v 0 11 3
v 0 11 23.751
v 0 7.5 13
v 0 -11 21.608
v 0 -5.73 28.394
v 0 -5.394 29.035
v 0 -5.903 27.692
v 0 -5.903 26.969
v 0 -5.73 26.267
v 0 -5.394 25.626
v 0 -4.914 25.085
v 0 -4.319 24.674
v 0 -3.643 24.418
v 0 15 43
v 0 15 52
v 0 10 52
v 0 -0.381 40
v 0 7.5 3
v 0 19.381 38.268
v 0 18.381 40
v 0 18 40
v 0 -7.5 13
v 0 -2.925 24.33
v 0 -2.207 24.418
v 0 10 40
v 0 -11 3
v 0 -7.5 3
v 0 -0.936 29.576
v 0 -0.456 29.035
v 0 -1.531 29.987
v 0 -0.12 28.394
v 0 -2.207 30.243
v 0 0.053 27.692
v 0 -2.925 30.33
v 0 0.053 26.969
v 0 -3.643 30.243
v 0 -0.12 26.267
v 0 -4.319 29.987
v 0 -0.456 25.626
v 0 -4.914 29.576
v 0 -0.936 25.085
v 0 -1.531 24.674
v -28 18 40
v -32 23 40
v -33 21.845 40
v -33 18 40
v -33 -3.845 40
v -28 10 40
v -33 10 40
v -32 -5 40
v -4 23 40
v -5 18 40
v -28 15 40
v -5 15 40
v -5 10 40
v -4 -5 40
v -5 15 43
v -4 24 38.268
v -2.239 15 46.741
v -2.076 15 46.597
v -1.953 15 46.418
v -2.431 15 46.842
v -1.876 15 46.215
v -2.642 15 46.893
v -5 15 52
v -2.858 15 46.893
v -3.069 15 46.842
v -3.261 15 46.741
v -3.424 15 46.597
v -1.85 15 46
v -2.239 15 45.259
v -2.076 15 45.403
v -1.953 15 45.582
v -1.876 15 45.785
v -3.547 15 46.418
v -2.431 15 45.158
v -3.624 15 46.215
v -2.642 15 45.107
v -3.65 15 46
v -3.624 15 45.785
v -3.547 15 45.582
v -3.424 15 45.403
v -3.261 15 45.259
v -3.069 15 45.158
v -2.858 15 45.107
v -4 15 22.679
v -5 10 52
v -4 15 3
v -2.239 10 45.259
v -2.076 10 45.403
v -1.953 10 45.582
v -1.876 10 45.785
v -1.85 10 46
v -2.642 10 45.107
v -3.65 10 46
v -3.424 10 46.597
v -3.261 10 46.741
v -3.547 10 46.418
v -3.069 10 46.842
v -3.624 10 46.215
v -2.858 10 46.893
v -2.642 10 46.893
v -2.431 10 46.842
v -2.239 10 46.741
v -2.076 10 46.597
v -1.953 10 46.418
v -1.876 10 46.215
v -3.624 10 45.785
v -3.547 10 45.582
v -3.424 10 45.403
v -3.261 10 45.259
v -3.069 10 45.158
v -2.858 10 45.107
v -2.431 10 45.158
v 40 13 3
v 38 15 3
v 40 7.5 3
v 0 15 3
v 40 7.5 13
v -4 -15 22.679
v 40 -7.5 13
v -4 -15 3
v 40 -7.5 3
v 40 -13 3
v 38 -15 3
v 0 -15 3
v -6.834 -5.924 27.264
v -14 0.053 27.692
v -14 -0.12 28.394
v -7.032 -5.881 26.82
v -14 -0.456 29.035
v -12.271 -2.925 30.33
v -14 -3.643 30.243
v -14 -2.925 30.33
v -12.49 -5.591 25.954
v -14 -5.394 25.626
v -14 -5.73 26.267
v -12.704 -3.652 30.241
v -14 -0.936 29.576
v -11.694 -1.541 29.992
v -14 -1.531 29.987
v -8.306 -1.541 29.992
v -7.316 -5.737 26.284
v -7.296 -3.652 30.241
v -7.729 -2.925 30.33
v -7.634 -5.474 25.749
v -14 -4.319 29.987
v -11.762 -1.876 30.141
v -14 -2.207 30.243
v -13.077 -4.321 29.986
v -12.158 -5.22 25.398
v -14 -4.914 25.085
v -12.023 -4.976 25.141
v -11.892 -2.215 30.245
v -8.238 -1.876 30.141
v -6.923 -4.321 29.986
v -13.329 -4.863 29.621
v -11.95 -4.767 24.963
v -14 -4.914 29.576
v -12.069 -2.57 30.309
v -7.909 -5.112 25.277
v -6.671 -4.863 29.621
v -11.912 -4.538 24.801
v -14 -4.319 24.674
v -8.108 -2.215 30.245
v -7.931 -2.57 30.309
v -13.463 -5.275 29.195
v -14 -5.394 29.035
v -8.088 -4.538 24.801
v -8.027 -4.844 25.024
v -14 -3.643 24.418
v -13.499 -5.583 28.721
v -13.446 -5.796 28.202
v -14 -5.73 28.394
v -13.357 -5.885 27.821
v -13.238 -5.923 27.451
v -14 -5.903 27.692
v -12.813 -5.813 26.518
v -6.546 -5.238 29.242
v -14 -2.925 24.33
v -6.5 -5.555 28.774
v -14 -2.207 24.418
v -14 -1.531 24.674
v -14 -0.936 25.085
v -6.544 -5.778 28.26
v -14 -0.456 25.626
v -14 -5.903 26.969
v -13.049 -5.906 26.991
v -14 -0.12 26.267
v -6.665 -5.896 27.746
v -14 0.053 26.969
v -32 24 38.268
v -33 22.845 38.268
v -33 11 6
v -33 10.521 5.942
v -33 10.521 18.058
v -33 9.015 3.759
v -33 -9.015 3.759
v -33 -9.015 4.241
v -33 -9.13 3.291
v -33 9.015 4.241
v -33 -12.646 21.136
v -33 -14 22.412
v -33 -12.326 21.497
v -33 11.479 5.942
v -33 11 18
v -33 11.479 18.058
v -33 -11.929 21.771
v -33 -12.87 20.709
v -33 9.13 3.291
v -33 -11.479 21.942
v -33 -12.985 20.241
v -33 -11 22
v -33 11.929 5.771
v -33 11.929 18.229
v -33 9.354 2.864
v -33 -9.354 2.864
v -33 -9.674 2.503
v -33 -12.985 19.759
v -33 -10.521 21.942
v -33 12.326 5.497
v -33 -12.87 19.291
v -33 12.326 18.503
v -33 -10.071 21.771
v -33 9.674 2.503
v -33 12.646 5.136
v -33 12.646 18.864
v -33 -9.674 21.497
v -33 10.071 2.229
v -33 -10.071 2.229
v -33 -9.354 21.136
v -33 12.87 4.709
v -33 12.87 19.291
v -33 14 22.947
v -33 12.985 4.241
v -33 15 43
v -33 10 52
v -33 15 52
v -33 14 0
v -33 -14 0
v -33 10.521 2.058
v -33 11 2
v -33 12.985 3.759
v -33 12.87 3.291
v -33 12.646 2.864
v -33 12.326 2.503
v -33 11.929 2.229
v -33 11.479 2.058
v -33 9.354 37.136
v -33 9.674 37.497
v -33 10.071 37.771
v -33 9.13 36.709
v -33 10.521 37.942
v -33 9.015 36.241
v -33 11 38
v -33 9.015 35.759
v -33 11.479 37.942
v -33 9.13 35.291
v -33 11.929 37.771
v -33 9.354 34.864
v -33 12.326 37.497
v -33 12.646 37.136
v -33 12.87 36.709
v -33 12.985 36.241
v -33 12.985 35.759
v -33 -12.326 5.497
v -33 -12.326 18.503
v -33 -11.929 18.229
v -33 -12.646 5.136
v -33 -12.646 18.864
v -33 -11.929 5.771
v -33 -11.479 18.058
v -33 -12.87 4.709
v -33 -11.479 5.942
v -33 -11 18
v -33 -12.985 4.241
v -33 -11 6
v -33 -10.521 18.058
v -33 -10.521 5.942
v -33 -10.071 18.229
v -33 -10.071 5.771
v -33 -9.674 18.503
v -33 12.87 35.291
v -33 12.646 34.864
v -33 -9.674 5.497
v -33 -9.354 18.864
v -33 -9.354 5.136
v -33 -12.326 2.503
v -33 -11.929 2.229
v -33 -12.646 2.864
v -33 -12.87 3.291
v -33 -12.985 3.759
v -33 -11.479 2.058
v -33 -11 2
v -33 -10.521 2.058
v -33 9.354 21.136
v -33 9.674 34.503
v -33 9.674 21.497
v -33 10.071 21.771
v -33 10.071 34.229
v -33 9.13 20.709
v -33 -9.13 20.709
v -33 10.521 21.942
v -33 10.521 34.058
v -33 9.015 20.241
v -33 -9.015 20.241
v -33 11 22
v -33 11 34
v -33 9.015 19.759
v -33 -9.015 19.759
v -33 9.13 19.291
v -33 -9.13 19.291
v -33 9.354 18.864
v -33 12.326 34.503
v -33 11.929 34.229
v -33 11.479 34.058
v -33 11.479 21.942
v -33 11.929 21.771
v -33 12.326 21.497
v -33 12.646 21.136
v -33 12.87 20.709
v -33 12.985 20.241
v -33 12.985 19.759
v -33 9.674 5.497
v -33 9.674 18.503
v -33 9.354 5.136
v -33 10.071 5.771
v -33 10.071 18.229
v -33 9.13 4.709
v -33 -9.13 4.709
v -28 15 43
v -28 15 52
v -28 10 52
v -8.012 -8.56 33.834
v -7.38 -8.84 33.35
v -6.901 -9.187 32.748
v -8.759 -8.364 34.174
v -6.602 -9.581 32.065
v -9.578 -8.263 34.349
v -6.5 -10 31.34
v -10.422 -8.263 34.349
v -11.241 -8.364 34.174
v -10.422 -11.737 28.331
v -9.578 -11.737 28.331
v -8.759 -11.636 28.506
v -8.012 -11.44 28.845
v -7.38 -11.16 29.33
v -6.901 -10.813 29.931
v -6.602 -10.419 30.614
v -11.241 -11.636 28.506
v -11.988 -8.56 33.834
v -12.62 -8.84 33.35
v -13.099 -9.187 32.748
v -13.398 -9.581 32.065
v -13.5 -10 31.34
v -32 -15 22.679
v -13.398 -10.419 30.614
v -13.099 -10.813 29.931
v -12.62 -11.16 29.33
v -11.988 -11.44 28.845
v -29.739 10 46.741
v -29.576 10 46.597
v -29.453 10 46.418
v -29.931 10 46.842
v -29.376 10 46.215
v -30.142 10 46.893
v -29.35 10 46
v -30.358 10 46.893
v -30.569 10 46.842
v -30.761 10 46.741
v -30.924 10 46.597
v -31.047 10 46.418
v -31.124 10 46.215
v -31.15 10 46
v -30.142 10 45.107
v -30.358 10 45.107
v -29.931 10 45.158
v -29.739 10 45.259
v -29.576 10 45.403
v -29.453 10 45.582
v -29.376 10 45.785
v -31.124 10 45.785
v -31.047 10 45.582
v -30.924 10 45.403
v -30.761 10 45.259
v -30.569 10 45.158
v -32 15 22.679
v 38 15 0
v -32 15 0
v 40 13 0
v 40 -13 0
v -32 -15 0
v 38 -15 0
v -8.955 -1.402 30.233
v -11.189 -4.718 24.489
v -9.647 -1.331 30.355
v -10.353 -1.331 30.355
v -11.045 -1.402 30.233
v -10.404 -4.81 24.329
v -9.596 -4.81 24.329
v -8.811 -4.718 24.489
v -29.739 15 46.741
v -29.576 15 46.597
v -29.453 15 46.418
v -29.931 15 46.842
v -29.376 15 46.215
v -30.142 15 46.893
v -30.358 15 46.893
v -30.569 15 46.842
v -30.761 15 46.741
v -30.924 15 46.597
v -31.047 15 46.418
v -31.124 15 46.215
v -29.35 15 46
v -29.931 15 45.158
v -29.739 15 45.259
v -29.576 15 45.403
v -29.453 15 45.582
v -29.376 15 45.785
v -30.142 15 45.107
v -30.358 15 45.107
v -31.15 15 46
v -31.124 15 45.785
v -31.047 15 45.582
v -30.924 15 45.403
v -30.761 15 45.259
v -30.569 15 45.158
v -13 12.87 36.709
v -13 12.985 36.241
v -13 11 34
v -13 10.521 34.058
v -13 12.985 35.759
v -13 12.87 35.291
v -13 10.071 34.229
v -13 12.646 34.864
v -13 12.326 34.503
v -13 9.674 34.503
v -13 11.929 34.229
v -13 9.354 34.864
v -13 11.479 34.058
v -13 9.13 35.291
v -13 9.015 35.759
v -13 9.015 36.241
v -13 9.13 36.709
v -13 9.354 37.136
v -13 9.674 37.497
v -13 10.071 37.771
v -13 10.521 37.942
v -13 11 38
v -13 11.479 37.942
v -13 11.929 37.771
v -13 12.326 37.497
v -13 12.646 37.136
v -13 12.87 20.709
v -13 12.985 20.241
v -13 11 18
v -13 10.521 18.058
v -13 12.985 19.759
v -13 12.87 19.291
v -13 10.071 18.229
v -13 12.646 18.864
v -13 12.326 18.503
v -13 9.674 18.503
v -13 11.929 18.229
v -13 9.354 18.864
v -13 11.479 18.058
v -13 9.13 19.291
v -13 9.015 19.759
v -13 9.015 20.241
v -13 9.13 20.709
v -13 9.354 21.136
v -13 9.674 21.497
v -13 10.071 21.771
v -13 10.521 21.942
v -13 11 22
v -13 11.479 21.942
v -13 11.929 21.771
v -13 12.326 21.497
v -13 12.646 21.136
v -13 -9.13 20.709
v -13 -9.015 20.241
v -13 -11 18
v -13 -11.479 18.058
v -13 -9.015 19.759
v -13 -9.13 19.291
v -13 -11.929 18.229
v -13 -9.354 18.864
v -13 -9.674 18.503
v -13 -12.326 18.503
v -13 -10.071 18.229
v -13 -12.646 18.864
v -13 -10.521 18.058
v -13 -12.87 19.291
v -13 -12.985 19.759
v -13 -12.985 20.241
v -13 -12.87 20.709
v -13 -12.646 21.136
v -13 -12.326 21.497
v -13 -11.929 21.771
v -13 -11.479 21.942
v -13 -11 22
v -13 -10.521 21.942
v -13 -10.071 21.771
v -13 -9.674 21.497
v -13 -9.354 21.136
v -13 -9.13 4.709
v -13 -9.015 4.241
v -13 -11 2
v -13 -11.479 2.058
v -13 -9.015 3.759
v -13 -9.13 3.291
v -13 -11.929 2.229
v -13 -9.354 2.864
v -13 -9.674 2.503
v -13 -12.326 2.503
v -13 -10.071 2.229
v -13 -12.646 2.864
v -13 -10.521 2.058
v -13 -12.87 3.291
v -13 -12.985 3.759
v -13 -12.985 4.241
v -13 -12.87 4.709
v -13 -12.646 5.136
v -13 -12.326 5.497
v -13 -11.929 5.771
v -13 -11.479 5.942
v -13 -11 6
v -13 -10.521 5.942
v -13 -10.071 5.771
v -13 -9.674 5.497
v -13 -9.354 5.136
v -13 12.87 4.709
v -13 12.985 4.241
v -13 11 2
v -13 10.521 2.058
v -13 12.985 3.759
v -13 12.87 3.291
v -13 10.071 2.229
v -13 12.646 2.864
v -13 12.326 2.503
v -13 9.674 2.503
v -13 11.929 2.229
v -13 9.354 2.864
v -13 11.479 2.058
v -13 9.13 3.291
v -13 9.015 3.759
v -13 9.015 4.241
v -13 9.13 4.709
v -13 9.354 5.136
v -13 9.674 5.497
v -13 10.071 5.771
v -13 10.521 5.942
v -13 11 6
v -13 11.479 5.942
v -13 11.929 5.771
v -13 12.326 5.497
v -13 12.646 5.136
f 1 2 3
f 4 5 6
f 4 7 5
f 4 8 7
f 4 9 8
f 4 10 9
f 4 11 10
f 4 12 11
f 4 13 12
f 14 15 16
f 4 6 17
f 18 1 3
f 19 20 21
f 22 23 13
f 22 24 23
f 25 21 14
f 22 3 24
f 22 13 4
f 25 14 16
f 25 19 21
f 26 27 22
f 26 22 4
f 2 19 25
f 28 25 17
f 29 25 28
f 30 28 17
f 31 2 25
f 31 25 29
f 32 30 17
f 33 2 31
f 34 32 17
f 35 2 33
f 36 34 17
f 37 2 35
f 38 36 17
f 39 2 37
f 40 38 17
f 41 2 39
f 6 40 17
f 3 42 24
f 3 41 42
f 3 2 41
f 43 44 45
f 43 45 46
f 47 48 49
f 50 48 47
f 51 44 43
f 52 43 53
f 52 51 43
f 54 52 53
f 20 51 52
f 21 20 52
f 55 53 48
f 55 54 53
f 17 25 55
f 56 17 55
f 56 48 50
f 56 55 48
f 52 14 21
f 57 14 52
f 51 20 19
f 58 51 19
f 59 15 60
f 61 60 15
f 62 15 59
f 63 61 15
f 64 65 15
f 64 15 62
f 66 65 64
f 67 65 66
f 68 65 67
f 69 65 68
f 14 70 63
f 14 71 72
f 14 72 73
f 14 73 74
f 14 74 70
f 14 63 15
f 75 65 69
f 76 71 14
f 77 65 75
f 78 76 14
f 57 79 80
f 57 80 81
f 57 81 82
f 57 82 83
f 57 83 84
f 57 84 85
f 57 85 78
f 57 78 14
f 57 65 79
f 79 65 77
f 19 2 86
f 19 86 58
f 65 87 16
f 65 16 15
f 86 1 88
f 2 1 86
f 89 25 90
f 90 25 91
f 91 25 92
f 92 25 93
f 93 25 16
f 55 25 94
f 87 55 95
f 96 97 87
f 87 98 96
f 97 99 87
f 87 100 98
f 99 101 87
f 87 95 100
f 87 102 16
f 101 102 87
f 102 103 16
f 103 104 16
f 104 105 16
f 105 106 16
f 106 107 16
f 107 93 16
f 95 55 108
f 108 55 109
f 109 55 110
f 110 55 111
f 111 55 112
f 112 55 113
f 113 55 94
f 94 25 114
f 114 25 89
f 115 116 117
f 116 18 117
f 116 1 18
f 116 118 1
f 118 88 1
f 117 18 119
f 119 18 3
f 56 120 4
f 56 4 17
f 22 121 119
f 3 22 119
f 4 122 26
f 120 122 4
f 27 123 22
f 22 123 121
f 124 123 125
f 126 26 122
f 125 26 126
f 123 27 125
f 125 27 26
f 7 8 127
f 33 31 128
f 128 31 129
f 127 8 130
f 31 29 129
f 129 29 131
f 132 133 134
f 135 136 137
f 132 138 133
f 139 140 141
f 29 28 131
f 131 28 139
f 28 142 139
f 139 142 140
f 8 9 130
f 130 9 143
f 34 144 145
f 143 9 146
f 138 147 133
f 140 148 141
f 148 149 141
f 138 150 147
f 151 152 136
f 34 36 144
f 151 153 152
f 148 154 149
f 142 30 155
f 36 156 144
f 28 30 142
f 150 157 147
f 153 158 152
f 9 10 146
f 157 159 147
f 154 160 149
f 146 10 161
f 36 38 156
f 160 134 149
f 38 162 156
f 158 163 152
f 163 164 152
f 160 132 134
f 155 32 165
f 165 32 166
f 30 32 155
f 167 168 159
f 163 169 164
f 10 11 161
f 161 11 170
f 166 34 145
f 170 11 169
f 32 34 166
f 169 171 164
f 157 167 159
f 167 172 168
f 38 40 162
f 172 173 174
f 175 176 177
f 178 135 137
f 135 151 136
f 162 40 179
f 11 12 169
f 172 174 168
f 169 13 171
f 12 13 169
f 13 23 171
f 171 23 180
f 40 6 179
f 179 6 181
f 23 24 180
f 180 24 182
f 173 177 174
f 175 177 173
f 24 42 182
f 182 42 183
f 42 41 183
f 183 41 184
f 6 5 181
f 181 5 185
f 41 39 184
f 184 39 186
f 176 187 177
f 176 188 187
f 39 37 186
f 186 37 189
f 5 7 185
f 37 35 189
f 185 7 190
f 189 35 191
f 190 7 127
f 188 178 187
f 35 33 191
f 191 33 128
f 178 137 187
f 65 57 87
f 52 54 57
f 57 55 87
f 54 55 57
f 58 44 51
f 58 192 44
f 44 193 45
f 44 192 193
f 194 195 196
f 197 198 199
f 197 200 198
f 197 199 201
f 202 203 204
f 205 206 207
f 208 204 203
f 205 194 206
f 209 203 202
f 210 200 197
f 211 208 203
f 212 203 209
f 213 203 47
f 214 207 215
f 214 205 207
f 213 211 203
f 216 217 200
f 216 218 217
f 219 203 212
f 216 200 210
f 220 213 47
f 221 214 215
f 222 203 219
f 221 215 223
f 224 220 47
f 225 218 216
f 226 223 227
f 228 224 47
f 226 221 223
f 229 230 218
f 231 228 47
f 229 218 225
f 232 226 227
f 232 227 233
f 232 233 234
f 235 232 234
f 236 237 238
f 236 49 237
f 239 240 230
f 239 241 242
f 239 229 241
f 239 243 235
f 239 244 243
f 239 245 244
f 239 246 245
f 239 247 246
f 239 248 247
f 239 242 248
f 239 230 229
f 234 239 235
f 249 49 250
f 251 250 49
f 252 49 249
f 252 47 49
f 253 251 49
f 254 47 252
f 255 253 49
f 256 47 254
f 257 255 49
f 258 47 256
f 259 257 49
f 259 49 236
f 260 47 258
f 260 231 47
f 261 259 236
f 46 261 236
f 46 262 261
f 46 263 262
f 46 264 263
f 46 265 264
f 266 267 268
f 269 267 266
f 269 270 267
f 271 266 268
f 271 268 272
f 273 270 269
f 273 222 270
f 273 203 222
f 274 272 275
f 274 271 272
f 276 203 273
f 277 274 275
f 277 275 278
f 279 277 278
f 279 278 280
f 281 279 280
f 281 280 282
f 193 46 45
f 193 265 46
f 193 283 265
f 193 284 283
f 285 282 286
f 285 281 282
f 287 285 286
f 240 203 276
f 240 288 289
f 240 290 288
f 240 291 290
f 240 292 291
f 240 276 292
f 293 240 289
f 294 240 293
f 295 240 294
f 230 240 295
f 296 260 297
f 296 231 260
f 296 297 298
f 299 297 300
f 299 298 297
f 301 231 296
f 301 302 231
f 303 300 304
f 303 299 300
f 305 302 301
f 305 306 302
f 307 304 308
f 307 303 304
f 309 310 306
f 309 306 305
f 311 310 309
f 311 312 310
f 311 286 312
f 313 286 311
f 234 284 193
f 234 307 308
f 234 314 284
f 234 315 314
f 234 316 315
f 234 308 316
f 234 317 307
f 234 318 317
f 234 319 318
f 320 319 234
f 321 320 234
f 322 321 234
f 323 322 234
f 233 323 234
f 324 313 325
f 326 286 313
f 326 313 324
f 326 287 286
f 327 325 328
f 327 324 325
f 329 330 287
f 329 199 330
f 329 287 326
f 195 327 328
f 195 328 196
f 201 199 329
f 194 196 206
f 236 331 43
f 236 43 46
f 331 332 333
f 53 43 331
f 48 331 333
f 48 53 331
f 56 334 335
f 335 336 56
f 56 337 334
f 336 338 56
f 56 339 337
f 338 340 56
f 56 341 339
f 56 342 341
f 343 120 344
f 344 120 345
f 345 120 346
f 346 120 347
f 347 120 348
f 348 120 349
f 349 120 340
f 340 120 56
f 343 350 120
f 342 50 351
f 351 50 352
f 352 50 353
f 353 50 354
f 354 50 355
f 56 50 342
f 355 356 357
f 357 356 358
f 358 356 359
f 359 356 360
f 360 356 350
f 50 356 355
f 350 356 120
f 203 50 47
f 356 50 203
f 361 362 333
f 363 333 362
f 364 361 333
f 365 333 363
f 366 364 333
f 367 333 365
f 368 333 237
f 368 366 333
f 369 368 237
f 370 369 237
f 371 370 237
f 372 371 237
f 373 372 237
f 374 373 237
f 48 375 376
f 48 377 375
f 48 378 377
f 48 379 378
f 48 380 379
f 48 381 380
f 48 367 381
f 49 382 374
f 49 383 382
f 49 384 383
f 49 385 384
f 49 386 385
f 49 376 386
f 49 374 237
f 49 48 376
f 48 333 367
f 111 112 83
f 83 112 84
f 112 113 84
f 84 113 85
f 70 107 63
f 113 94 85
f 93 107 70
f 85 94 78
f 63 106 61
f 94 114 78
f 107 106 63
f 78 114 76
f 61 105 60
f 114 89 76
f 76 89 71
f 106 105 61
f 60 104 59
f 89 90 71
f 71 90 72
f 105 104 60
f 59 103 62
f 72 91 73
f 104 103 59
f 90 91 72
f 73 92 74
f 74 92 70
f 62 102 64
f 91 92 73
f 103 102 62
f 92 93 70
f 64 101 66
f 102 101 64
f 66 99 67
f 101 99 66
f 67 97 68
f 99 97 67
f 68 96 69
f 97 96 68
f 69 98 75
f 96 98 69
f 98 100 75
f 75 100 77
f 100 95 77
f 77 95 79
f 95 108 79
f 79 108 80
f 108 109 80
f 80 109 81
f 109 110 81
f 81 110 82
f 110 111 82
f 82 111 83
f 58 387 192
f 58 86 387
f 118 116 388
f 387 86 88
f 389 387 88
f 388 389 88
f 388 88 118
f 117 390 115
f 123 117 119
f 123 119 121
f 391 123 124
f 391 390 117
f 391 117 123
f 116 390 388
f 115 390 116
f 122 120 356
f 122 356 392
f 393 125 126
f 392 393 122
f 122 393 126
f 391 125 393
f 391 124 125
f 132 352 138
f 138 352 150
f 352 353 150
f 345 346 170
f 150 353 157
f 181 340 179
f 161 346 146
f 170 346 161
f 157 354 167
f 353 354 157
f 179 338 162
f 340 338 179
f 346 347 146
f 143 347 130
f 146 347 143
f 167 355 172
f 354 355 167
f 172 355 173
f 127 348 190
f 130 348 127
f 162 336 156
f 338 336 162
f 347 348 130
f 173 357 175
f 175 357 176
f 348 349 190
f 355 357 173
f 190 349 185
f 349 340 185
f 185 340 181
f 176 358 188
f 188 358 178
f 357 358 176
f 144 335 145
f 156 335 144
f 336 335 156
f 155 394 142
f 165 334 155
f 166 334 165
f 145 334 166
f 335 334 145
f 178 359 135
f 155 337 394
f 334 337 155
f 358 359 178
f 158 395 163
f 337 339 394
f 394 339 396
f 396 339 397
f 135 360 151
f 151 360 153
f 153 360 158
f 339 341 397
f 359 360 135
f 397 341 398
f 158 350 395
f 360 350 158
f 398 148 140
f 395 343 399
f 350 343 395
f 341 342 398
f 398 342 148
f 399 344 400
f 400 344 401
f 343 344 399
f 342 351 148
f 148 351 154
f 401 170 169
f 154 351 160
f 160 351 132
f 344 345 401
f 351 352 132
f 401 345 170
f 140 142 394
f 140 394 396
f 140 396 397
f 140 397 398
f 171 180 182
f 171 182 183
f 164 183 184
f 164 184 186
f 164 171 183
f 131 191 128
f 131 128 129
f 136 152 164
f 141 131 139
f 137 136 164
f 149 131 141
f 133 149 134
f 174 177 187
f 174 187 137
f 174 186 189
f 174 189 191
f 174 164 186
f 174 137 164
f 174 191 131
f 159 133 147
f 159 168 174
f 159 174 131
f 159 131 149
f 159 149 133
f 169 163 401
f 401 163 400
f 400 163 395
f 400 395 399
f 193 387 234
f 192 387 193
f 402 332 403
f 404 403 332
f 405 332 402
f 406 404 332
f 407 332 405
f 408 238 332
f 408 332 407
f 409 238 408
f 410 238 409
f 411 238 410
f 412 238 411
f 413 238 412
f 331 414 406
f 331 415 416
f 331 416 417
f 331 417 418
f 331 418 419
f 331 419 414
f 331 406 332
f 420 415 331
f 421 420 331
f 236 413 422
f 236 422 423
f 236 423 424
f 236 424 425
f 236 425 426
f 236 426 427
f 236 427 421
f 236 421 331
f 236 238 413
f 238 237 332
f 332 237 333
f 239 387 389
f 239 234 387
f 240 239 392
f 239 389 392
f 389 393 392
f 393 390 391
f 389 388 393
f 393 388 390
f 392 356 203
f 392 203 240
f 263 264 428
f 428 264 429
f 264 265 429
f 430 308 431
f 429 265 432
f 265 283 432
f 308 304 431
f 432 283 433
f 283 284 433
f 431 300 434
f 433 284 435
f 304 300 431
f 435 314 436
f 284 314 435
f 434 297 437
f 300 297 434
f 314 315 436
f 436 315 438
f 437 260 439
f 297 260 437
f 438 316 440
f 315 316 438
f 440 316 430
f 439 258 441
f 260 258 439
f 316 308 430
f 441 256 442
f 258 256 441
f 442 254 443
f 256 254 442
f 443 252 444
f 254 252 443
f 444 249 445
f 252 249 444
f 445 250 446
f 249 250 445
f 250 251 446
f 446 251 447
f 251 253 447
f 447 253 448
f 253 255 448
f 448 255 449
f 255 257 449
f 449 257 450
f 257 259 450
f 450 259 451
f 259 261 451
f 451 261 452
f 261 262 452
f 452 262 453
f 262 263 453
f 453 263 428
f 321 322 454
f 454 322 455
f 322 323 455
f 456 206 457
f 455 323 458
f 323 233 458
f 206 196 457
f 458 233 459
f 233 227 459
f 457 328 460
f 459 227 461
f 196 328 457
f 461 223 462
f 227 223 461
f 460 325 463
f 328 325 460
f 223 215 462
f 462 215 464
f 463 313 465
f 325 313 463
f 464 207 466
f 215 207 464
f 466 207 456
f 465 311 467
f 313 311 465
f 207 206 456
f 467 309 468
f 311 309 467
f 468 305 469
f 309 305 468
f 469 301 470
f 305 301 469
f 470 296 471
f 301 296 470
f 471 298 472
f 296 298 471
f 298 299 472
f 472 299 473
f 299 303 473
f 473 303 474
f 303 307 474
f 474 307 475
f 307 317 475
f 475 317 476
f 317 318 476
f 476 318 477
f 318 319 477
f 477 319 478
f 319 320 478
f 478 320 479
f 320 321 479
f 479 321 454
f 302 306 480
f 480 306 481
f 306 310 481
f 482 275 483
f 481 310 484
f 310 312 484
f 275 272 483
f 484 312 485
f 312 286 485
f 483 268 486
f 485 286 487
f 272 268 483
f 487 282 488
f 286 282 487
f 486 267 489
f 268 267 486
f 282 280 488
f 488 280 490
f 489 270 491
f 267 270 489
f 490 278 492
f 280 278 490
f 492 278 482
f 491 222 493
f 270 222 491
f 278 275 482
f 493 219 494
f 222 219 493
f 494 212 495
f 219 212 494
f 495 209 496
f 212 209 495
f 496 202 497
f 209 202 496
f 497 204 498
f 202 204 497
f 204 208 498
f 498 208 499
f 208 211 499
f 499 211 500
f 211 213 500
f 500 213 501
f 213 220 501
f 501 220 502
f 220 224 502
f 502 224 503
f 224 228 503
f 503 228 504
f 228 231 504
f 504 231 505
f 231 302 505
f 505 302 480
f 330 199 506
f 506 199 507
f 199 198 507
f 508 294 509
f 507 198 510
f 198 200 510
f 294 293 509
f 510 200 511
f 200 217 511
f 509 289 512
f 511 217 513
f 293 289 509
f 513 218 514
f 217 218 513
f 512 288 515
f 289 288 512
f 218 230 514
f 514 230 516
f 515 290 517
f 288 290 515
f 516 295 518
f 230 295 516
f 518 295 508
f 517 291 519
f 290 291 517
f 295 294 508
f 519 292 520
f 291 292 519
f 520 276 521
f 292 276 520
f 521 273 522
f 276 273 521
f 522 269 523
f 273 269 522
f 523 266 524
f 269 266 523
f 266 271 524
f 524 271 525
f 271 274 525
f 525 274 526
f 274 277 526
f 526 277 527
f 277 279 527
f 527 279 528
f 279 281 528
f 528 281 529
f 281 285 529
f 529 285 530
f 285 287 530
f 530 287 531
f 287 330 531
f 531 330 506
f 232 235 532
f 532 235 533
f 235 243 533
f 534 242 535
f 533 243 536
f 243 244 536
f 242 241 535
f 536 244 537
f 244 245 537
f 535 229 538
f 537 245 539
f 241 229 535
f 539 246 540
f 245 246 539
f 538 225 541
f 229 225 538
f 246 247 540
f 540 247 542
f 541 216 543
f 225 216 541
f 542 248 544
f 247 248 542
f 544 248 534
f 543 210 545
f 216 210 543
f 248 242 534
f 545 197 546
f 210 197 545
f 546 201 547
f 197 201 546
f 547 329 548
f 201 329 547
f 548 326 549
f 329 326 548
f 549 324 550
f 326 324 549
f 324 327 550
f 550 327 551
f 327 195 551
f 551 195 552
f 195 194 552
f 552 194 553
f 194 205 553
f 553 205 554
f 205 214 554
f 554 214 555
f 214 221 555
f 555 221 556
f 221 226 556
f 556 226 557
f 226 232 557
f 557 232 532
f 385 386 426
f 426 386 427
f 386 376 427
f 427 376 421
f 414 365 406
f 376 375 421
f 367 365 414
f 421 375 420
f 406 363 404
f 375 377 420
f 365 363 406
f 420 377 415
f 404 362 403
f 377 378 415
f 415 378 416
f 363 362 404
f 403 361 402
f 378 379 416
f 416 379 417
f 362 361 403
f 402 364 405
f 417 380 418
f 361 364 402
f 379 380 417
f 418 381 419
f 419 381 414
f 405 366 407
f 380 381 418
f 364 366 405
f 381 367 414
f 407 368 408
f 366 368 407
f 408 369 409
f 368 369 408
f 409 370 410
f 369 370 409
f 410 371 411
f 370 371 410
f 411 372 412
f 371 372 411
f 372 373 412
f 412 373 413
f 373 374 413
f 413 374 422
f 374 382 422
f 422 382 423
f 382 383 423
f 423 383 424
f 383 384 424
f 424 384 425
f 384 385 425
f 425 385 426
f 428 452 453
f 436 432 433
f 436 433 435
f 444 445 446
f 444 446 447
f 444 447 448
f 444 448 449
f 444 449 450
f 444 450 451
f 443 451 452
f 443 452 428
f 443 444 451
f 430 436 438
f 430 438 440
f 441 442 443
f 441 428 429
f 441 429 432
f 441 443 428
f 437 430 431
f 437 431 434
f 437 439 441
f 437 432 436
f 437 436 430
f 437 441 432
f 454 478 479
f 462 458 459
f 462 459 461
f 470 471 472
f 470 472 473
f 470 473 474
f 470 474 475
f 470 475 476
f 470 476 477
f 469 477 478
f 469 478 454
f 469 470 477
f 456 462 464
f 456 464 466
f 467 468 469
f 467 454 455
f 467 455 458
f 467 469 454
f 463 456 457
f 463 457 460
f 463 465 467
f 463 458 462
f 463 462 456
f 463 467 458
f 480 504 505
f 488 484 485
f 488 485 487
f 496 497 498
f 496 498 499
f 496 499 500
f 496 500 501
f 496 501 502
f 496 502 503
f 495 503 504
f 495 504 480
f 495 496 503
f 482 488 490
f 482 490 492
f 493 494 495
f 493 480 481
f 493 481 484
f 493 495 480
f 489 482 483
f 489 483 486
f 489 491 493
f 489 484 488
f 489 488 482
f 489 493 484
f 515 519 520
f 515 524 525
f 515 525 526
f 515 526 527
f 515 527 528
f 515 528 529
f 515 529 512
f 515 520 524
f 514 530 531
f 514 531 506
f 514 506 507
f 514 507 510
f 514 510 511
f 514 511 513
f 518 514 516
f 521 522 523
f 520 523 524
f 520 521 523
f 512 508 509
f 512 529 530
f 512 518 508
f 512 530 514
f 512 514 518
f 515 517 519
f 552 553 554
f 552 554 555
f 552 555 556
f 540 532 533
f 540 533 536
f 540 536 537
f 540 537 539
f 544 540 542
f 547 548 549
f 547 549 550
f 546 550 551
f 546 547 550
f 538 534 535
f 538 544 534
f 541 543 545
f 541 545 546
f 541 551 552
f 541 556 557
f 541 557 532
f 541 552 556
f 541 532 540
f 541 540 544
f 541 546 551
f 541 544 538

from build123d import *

# Parameters (mm, degrees)
PAD_DEPTH       = 15
SKETCH001_W     = 40
SKETCH001_H     = 15
PAD001_DEPTH    = 10
SKETCH002_R     = 2
POCKET_DEPTH    = 20
SKETCH003_W     = 5
SKETCH003_H     = 5
PAD002_DEPTH    = 12
SKETCH004_R     = 0.9
POCKET001_DEPTH = 5.001
PAD003_DEPTH    = 33
POCKET002_DEPTH = 73.001
CHAMFER_SIZE    = 2
CHAMFER001_SIZE = 2
CHAMFER002_SIZE = 1
CHAMFER003_SIZE = 4
SKETCH007_R     = 3.5
POCKET003_DEPTH = 8
SKETCH008_R     = 3
POCKET004_DEPTH = 14
CHAMFER004_SIZE = 3


with BuildPart() as part:
    # Sketch → Pad (new body, symmetric)
    with BuildSketch(Plane.XZ):
        Polygon((-33, 40), (-33, 0), (40, 0), (40, 3), (0, 3), (0, 40), align=None)
    extrude(amount=PAD_DEPTH, both=True)

    # Sketch001 (on Face4 of Pad) → Pad001 (join)
    with BuildSketch(Plane(origin=(0, 0, 3), x_dir=(-1, 0, 0), z_dir=(0, 0, 1))):
        with Locations((-20, 0)):
            Rectangle(SKETCH001_W, SKETCH001_H)
    extrude(amount=PAD001_DEPTH)

    # Sketch002 (on Face1 of Pad001) → Pocket (cut)
    with BuildSketch(Plane(origin=(-33, 0, 0), x_dir=(0, 0, -1), z_dir=(-1, 0, 0))):
        with Locations((-36, 11.0000000011)):
            Circle(SKETCH002_R)
        with Locations((-20, 11.0000000011)):
            Circle(SKETCH002_R)
        with Locations((-4, 11)):
            Circle(SKETCH002_R)
        with Locations((-4, -11)):
            Circle(SKETCH002_R)
        with Locations((-20, -11.0000000011)):
            Circle(SKETCH002_R)
        with Locations((-36, -11.0000000011)):
            Circle(SKETCH002_R)
    extrude(amount=-POCKET_DEPTH, mode=Mode.SUBTRACT)

    # Sketch003 (on Face2 of Pocket) → Pad002 (join)
    with BuildSketch(Plane(origin=(0, 0, 40), x_dir=(-1, 0, 0), z_dir=(0, 0, 1))):
        with Locations((2.5, -12.5)):
            Rectangle(SKETCH003_W, SKETCH003_H)
        with Locations((30.5, -12.5)):
            Rectangle(SKETCH003_W, SKETCH003_H)
    extrude(amount=PAD002_DEPTH)

    # Sketch004 (on Face6 of Pad002) → Pocket001 (cut, through all)
    with BuildSketch(Plane.XZ.offset(-10)):
        with Locations((-30.25, 46)):
            Circle(SKETCH004_R)
        with Locations((-2.75, 46)):
            Circle(SKETCH004_R)
    extrude(amount=-POCKET001_DEPTH, mode=Mode.SUBTRACT)

    # Sketch005 (on Face9 of Pocket001) → Pad003 (join)
    with BuildSketch(Plane(origin=(0, 0, 0), x_dir=(0, 0, 1), z_dir=(1, 0, 0))):
        Polygon((22.6794919243, -15), (40, -25), (40, -15), align=None)
    extrude(amount=-PAD003_DEPTH)

    # Sketch006 (on Face22 of Pad003) → Pocket002 (cut, through all)
    with BuildSketch(Plane(origin=(-33, 0, 0), x_dir=(0, 0, -1), z_dir=(-1, 0, 0))):
        Polygon((-40, 5), (-22.6794919243, 15), (-40, 15), align=None)
    extrude(amount=-POCKET002_DEPTH, mode=Mode.SUBTRACT)

    # Chamfer
    chamfer_edges = [part.edges().sort_by_distance(p)[0] for p in [
        (-16.5, 25, 40),
    ]]
    chamfer(chamfer_edges, length=CHAMFER_SIZE)

    # Chamfer001
    chamfer001_edges = [part.edges().sort_by_distance(p)[0] for p in [
        (40, -15, 1.5),
        (40, 15, 1.5),
    ]]
    chamfer(chamfer001_edges, length=CHAMFER001_SIZE)

    # Chamfer002
    chamfer002_edges = [part.edges().sort_by_distance(p)[0] for p in [
        (-33, -15, 11.339746),
        (-33, -10, 31.339746),
        (-33, 15, 11.339746),
        (-33, 19.5, 30.473721),
        (-33, 23.5, 39.133975),
    ]]
    chamfer(chamfer002_edges, length=CHAMFER002_SIZE)

    # Chamfer003
    chamfer003_edges = [part.edges().sort_by_distance(p)[0] for p in [
        (0, -15, 12.839746),
        (0, -10, 31.339746),
        (0, 19.5, 30.473721),
        (0, 15, 12.839746),
        (0, 23.5, 39.133975),
    ]]
    chamfer(chamfer003_edges, length=CHAMFER003_SIZE)

    # Sketch007 (on Face38 of Chamfer003) → Pocket003 (cut)
    with BuildSketch(Plane(origin=(0, -21.0705080757, 12.1650635095), x_dir=(1, 0, 0), z_dir=(0, -0.8660254038, 0.5))):
        with Locations((-10, 22.1410161514)):
            Circle(SKETCH007_R)
    extrude(amount=-POCKET003_DEPTH, mode=Mode.SUBTRACT)

    # Sketch008 (on Face11 of Pocket003) → Pocket004 (cut)
    with BuildSketch(Plane(origin=(0, 0, 0), x_dir=(0, 0, 1), z_dir=(1, 0, 0))):
        with Locations((27.330492, 2.925061)):
            Circle(SKETCH008_R)
    extrude(amount=-POCKET004_DEPTH, mode=Mode.SUBTRACT)

    # Chamfer004
    chamfer004_edges = [part.edges().sort_by_distance(p)[0] for p in [
        (-2.5, 15, 40),
        (-30.5, 15, 40),
    ]]
    chamfer(chamfer004_edges, length=CHAMFER004_SIZE)


solid = part.part
